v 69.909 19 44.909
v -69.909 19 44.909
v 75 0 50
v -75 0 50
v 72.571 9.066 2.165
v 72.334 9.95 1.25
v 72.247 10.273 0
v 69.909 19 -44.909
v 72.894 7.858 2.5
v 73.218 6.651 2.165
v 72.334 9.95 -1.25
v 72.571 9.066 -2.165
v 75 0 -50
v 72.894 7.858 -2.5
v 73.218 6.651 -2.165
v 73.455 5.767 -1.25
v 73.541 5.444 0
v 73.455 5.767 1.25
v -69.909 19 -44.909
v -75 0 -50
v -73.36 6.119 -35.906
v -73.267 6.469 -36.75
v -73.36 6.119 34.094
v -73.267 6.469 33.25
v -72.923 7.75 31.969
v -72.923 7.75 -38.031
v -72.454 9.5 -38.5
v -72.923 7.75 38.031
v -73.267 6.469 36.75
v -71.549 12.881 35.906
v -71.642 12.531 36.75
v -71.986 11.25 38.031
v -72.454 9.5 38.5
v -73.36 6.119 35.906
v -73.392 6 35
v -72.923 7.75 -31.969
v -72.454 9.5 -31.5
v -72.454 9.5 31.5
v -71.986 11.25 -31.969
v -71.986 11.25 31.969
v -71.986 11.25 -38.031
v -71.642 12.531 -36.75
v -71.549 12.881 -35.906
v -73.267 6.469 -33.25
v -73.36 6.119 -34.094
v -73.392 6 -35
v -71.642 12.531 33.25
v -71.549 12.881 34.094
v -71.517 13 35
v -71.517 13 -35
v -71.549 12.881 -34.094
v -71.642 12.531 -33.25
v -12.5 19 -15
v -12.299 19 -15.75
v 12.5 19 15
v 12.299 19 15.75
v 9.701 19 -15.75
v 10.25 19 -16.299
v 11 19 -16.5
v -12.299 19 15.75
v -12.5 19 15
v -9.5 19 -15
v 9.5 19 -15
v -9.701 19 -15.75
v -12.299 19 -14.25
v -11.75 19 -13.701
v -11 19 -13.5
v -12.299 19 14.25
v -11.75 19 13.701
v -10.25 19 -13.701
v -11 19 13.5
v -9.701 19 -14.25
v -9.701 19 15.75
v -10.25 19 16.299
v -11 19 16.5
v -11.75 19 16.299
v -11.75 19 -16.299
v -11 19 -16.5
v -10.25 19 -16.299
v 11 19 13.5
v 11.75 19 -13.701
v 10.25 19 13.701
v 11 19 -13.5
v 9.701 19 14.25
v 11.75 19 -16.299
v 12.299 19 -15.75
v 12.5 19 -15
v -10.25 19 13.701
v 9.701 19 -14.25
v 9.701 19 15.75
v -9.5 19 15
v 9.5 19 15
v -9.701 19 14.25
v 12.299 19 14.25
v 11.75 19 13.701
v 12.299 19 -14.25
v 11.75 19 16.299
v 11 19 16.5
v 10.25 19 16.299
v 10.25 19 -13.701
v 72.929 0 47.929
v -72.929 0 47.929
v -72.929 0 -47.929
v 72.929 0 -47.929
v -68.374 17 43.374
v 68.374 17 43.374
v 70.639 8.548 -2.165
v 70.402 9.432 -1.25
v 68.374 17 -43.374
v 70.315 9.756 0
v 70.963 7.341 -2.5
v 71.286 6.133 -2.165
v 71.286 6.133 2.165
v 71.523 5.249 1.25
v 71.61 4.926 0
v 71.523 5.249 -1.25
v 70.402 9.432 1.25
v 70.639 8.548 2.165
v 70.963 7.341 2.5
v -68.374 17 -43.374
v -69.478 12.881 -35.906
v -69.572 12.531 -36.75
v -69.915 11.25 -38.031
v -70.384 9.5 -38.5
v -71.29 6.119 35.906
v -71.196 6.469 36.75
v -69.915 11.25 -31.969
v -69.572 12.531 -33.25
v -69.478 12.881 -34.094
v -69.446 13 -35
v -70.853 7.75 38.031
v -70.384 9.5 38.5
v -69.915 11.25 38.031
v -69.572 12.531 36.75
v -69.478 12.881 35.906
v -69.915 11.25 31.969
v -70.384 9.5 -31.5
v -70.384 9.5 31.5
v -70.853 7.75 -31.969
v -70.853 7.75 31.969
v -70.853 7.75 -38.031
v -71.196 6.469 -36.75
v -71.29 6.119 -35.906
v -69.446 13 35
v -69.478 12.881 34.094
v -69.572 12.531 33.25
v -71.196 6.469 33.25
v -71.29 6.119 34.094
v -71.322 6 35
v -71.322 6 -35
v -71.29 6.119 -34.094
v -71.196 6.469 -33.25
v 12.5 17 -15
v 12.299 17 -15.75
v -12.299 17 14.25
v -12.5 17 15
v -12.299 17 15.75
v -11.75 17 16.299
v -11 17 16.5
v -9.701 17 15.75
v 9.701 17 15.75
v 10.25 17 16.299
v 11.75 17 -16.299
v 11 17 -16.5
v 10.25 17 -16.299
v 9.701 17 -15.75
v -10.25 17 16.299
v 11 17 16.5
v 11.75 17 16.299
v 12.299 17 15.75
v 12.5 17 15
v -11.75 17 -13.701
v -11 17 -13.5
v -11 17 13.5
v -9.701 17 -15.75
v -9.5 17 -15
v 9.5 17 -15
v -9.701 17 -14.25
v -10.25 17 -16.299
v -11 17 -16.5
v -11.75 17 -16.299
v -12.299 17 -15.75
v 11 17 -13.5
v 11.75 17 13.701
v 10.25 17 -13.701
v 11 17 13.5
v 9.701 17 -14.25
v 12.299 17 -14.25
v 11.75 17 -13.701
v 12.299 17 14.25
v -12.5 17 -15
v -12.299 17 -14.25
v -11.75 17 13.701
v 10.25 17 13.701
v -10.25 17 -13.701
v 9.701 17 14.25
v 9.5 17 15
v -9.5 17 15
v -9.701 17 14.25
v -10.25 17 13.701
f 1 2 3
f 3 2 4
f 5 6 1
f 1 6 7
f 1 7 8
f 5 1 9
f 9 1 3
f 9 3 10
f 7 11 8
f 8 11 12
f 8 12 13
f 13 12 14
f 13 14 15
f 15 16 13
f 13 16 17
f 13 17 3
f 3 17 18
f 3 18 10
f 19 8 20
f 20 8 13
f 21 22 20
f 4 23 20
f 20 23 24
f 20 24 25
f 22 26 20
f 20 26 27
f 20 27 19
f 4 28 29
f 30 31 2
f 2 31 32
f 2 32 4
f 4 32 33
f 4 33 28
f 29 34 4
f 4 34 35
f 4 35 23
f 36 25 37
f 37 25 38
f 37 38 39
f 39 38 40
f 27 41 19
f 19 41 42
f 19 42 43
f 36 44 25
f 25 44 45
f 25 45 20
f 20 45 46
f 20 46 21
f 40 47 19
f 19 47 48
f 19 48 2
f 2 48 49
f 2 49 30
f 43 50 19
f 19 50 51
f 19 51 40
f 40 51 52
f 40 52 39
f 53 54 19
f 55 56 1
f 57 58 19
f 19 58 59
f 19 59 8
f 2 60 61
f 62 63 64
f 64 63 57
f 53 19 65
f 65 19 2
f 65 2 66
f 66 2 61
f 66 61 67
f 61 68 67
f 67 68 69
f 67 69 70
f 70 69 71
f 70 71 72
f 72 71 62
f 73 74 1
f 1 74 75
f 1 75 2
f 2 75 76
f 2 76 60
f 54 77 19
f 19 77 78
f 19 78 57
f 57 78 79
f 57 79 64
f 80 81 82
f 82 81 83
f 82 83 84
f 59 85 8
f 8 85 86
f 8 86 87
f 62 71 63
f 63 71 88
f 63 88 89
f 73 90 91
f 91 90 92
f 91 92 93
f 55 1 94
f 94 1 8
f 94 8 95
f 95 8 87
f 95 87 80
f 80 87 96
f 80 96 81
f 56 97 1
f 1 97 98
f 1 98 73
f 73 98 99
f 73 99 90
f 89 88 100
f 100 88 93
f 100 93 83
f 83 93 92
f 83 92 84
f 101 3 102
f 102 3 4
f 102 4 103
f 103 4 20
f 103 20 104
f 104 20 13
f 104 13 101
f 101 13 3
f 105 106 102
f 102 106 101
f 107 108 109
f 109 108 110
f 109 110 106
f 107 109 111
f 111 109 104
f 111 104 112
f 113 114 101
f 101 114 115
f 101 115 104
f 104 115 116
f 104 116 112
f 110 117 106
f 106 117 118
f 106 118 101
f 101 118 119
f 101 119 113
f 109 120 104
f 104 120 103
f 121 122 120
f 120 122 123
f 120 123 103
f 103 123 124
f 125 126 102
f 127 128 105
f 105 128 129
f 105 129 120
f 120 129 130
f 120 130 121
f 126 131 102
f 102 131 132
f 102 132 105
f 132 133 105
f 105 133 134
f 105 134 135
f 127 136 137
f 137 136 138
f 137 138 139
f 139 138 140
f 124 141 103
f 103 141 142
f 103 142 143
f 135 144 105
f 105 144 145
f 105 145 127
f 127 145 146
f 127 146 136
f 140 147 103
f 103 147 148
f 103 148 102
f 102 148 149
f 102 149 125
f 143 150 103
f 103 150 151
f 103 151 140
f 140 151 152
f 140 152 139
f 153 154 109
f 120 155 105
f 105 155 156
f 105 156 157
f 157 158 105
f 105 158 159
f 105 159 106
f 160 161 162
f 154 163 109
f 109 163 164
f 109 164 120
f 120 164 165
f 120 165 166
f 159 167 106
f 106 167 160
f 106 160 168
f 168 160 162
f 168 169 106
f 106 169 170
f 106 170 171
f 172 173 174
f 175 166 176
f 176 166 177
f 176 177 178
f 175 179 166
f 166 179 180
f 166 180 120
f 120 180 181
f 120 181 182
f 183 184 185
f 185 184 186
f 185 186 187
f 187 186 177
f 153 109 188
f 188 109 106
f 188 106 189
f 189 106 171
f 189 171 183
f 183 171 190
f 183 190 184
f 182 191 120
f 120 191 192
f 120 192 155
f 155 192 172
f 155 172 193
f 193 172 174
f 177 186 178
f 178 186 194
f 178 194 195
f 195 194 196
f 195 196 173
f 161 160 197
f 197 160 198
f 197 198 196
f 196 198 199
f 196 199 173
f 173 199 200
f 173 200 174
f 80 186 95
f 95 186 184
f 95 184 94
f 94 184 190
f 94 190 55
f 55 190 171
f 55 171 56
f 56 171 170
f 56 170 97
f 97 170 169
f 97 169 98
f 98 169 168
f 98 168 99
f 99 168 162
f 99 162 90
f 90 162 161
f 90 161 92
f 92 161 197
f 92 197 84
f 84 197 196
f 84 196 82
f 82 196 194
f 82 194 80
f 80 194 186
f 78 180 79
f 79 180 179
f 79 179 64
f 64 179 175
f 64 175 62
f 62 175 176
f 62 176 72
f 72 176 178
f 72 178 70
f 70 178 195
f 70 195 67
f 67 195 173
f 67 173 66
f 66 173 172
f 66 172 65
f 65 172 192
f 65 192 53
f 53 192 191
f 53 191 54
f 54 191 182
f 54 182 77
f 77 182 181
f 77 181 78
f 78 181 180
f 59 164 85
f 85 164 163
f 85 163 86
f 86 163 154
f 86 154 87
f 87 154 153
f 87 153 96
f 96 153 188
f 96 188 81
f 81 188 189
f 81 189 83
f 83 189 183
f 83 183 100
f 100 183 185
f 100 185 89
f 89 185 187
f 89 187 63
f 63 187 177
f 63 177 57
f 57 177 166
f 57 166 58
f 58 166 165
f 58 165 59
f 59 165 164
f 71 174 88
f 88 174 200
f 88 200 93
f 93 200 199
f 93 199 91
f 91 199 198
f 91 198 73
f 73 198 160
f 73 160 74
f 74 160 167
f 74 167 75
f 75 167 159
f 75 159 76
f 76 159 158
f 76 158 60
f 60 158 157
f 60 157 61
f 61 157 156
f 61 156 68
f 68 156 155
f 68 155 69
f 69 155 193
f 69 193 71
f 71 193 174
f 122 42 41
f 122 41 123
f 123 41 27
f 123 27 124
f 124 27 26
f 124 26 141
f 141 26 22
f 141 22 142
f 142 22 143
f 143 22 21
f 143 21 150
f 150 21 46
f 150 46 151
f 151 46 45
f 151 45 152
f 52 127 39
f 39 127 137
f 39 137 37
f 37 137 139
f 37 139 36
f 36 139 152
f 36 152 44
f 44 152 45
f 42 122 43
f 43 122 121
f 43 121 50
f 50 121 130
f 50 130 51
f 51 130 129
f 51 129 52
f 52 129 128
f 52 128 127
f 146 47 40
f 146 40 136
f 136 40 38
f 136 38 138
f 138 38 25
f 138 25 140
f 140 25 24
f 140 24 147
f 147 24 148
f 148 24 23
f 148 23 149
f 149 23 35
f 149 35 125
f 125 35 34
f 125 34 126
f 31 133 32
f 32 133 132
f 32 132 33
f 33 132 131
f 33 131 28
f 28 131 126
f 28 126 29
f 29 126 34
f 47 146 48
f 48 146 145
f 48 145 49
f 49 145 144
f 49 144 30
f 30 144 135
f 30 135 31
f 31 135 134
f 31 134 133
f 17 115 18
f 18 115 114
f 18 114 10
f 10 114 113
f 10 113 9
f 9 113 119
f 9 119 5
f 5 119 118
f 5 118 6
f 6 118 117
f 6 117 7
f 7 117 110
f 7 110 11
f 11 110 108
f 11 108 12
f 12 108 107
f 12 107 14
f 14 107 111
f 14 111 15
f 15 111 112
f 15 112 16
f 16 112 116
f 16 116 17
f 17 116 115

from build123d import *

# Parameters (mm, degrees)
SKETCH_4_W          = 150
SKETCH_4_H          = 100
EXTRUDE_1_DEPTH     = 19
EXTRUDE_1_TAPER     = 15
SHELL_1_T           = -2
SKETCH_13_R         = 1.5
CUT_EXTRUDE_3_DEPTH = 92.727858519
CUT_EXTRUDE_4_REACH = 94.119
SKETCH_15_R         = 3.5
SKETCH_16_R         = 2.5
CUT_EXTRUDE_5_DEPTH = 153.623831333


with BuildPart() as part:
    # 草图4 → 凸台-拉伸1 (new body)
    with BuildSketch(Plane(origin=(0, 0, 0), x_dir=(1, 0, 0), z_dir=(0, 1, 0))):
        Rectangle(SKETCH_4_W, SKETCH_4_H)
    extrude(amount=EXTRUDE_1_DEPTH, taper=EXTRUDE_1_TAPER)

    # 抽壳1
    shell_1_openings = [part.faces().sort_by_distance(p)[0] for p in [
        (0, 0, 0),
    ]]
    offset(amount=SHELL_1_T, openings=shell_1_openings, kind=Kind.INTERSECTION)

    # 草图13 → 切除-拉伸3 (cut, through all)
    with BuildSketch(Plane.XZ.offset(-17)):
        with Locations(Location((11, 15, 0), (0, 0, 270))):
            Circle(SKETCH_13_R)
        with Locations(Location((-11, 15, 0), (0, 0, 90))):
            Circle(SKETCH_13_R)
        with Locations(Location((11, -15, 0), (0, 0, 90))):
            Circle(SKETCH_13_R)
        with Locations(Location((-11, -15, 0), (0, 0, 270))):
            Circle(SKETCH_13_R)
    extrude(amount=-CUT_EXTRUDE_3_DEPTH, mode=Mode.SUBTRACT)

    # 切除-拉伸4: up to this plane
    cut_extrude_4_end = Plane(origin=(-75, 0, 50), z_dir=(-0.9659258262890681, 0.2588190451025214, 0))
    # 草图15 → 切除-拉伸4 (cut, up to the surface)
    with BuildSketch(Plane(origin=(0, 0, 0), x_dir=(0, 0, -1), z_dir=(1, 0, 0)), mode=Mode.PRIVATE) as cut_extrude_4_sk1:
        with Locations(Location((-35, 9.5, 0), (0, 0, 90))):
            Circle(SKETCH_15_R)
    cut_extrude_4_tool1 = split(extrude(cut_extrude_4_sk1.sketch, amount=-CUT_EXTRUDE_4_REACH, mode=Mode.PRIVATE), bisect_by=cut_extrude_4_end, keep=Keep.BOTH, mode=Mode.PRIVATE)
    add(cut_extrude_4_tool1.solids().sort_by_distance((0, 9.5, 35))[0], mode=Mode.SUBTRACT)
    # 草图15 → 切除-拉伸4 (cut, up to the surface)
    with BuildSketch(Plane(origin=(0, 0, 0), x_dir=(0, 0, -1), z_dir=(1, 0, 0)), mode=Mode.PRIVATE) as cut_extrude_4_sk2:
        with Locations(Location((35, 9.5, 0), (0, 0, 90))):
            Circle(SKETCH_15_R)
    cut_extrude_4_tool2 = split(extrude(cut_extrude_4_sk2.sketch, amount=-CUT_EXTRUDE_4_REACH, mode=Mode.PRIVATE), bisect_by=cut_extrude_4_end, keep=Keep.BOTH, mode=Mode.PRIVATE)
    add(cut_extrude_4_tool2.solids().sort_by_distance((0, 9.5, -35))[0], mode=Mode.SUBTRACT)

    # 草图16 → 切除-拉伸5 (cut, through all)
    with BuildSketch(Plane(origin=(68.044100989, 18.23236191, 0), x_dir=(0, 0, 1), z_dir=(-0.9659258262890681, -0.2588190451025214, 0))):
        with Locations(Location((0, -11.275834931, 0), (0, 0, 270))):
            Circle(SKETCH_16_R)
    extrude(amount=-CUT_EXTRUDE_5_DEPTH, mode=Mode.SUBTRACT)


solid = part.part
